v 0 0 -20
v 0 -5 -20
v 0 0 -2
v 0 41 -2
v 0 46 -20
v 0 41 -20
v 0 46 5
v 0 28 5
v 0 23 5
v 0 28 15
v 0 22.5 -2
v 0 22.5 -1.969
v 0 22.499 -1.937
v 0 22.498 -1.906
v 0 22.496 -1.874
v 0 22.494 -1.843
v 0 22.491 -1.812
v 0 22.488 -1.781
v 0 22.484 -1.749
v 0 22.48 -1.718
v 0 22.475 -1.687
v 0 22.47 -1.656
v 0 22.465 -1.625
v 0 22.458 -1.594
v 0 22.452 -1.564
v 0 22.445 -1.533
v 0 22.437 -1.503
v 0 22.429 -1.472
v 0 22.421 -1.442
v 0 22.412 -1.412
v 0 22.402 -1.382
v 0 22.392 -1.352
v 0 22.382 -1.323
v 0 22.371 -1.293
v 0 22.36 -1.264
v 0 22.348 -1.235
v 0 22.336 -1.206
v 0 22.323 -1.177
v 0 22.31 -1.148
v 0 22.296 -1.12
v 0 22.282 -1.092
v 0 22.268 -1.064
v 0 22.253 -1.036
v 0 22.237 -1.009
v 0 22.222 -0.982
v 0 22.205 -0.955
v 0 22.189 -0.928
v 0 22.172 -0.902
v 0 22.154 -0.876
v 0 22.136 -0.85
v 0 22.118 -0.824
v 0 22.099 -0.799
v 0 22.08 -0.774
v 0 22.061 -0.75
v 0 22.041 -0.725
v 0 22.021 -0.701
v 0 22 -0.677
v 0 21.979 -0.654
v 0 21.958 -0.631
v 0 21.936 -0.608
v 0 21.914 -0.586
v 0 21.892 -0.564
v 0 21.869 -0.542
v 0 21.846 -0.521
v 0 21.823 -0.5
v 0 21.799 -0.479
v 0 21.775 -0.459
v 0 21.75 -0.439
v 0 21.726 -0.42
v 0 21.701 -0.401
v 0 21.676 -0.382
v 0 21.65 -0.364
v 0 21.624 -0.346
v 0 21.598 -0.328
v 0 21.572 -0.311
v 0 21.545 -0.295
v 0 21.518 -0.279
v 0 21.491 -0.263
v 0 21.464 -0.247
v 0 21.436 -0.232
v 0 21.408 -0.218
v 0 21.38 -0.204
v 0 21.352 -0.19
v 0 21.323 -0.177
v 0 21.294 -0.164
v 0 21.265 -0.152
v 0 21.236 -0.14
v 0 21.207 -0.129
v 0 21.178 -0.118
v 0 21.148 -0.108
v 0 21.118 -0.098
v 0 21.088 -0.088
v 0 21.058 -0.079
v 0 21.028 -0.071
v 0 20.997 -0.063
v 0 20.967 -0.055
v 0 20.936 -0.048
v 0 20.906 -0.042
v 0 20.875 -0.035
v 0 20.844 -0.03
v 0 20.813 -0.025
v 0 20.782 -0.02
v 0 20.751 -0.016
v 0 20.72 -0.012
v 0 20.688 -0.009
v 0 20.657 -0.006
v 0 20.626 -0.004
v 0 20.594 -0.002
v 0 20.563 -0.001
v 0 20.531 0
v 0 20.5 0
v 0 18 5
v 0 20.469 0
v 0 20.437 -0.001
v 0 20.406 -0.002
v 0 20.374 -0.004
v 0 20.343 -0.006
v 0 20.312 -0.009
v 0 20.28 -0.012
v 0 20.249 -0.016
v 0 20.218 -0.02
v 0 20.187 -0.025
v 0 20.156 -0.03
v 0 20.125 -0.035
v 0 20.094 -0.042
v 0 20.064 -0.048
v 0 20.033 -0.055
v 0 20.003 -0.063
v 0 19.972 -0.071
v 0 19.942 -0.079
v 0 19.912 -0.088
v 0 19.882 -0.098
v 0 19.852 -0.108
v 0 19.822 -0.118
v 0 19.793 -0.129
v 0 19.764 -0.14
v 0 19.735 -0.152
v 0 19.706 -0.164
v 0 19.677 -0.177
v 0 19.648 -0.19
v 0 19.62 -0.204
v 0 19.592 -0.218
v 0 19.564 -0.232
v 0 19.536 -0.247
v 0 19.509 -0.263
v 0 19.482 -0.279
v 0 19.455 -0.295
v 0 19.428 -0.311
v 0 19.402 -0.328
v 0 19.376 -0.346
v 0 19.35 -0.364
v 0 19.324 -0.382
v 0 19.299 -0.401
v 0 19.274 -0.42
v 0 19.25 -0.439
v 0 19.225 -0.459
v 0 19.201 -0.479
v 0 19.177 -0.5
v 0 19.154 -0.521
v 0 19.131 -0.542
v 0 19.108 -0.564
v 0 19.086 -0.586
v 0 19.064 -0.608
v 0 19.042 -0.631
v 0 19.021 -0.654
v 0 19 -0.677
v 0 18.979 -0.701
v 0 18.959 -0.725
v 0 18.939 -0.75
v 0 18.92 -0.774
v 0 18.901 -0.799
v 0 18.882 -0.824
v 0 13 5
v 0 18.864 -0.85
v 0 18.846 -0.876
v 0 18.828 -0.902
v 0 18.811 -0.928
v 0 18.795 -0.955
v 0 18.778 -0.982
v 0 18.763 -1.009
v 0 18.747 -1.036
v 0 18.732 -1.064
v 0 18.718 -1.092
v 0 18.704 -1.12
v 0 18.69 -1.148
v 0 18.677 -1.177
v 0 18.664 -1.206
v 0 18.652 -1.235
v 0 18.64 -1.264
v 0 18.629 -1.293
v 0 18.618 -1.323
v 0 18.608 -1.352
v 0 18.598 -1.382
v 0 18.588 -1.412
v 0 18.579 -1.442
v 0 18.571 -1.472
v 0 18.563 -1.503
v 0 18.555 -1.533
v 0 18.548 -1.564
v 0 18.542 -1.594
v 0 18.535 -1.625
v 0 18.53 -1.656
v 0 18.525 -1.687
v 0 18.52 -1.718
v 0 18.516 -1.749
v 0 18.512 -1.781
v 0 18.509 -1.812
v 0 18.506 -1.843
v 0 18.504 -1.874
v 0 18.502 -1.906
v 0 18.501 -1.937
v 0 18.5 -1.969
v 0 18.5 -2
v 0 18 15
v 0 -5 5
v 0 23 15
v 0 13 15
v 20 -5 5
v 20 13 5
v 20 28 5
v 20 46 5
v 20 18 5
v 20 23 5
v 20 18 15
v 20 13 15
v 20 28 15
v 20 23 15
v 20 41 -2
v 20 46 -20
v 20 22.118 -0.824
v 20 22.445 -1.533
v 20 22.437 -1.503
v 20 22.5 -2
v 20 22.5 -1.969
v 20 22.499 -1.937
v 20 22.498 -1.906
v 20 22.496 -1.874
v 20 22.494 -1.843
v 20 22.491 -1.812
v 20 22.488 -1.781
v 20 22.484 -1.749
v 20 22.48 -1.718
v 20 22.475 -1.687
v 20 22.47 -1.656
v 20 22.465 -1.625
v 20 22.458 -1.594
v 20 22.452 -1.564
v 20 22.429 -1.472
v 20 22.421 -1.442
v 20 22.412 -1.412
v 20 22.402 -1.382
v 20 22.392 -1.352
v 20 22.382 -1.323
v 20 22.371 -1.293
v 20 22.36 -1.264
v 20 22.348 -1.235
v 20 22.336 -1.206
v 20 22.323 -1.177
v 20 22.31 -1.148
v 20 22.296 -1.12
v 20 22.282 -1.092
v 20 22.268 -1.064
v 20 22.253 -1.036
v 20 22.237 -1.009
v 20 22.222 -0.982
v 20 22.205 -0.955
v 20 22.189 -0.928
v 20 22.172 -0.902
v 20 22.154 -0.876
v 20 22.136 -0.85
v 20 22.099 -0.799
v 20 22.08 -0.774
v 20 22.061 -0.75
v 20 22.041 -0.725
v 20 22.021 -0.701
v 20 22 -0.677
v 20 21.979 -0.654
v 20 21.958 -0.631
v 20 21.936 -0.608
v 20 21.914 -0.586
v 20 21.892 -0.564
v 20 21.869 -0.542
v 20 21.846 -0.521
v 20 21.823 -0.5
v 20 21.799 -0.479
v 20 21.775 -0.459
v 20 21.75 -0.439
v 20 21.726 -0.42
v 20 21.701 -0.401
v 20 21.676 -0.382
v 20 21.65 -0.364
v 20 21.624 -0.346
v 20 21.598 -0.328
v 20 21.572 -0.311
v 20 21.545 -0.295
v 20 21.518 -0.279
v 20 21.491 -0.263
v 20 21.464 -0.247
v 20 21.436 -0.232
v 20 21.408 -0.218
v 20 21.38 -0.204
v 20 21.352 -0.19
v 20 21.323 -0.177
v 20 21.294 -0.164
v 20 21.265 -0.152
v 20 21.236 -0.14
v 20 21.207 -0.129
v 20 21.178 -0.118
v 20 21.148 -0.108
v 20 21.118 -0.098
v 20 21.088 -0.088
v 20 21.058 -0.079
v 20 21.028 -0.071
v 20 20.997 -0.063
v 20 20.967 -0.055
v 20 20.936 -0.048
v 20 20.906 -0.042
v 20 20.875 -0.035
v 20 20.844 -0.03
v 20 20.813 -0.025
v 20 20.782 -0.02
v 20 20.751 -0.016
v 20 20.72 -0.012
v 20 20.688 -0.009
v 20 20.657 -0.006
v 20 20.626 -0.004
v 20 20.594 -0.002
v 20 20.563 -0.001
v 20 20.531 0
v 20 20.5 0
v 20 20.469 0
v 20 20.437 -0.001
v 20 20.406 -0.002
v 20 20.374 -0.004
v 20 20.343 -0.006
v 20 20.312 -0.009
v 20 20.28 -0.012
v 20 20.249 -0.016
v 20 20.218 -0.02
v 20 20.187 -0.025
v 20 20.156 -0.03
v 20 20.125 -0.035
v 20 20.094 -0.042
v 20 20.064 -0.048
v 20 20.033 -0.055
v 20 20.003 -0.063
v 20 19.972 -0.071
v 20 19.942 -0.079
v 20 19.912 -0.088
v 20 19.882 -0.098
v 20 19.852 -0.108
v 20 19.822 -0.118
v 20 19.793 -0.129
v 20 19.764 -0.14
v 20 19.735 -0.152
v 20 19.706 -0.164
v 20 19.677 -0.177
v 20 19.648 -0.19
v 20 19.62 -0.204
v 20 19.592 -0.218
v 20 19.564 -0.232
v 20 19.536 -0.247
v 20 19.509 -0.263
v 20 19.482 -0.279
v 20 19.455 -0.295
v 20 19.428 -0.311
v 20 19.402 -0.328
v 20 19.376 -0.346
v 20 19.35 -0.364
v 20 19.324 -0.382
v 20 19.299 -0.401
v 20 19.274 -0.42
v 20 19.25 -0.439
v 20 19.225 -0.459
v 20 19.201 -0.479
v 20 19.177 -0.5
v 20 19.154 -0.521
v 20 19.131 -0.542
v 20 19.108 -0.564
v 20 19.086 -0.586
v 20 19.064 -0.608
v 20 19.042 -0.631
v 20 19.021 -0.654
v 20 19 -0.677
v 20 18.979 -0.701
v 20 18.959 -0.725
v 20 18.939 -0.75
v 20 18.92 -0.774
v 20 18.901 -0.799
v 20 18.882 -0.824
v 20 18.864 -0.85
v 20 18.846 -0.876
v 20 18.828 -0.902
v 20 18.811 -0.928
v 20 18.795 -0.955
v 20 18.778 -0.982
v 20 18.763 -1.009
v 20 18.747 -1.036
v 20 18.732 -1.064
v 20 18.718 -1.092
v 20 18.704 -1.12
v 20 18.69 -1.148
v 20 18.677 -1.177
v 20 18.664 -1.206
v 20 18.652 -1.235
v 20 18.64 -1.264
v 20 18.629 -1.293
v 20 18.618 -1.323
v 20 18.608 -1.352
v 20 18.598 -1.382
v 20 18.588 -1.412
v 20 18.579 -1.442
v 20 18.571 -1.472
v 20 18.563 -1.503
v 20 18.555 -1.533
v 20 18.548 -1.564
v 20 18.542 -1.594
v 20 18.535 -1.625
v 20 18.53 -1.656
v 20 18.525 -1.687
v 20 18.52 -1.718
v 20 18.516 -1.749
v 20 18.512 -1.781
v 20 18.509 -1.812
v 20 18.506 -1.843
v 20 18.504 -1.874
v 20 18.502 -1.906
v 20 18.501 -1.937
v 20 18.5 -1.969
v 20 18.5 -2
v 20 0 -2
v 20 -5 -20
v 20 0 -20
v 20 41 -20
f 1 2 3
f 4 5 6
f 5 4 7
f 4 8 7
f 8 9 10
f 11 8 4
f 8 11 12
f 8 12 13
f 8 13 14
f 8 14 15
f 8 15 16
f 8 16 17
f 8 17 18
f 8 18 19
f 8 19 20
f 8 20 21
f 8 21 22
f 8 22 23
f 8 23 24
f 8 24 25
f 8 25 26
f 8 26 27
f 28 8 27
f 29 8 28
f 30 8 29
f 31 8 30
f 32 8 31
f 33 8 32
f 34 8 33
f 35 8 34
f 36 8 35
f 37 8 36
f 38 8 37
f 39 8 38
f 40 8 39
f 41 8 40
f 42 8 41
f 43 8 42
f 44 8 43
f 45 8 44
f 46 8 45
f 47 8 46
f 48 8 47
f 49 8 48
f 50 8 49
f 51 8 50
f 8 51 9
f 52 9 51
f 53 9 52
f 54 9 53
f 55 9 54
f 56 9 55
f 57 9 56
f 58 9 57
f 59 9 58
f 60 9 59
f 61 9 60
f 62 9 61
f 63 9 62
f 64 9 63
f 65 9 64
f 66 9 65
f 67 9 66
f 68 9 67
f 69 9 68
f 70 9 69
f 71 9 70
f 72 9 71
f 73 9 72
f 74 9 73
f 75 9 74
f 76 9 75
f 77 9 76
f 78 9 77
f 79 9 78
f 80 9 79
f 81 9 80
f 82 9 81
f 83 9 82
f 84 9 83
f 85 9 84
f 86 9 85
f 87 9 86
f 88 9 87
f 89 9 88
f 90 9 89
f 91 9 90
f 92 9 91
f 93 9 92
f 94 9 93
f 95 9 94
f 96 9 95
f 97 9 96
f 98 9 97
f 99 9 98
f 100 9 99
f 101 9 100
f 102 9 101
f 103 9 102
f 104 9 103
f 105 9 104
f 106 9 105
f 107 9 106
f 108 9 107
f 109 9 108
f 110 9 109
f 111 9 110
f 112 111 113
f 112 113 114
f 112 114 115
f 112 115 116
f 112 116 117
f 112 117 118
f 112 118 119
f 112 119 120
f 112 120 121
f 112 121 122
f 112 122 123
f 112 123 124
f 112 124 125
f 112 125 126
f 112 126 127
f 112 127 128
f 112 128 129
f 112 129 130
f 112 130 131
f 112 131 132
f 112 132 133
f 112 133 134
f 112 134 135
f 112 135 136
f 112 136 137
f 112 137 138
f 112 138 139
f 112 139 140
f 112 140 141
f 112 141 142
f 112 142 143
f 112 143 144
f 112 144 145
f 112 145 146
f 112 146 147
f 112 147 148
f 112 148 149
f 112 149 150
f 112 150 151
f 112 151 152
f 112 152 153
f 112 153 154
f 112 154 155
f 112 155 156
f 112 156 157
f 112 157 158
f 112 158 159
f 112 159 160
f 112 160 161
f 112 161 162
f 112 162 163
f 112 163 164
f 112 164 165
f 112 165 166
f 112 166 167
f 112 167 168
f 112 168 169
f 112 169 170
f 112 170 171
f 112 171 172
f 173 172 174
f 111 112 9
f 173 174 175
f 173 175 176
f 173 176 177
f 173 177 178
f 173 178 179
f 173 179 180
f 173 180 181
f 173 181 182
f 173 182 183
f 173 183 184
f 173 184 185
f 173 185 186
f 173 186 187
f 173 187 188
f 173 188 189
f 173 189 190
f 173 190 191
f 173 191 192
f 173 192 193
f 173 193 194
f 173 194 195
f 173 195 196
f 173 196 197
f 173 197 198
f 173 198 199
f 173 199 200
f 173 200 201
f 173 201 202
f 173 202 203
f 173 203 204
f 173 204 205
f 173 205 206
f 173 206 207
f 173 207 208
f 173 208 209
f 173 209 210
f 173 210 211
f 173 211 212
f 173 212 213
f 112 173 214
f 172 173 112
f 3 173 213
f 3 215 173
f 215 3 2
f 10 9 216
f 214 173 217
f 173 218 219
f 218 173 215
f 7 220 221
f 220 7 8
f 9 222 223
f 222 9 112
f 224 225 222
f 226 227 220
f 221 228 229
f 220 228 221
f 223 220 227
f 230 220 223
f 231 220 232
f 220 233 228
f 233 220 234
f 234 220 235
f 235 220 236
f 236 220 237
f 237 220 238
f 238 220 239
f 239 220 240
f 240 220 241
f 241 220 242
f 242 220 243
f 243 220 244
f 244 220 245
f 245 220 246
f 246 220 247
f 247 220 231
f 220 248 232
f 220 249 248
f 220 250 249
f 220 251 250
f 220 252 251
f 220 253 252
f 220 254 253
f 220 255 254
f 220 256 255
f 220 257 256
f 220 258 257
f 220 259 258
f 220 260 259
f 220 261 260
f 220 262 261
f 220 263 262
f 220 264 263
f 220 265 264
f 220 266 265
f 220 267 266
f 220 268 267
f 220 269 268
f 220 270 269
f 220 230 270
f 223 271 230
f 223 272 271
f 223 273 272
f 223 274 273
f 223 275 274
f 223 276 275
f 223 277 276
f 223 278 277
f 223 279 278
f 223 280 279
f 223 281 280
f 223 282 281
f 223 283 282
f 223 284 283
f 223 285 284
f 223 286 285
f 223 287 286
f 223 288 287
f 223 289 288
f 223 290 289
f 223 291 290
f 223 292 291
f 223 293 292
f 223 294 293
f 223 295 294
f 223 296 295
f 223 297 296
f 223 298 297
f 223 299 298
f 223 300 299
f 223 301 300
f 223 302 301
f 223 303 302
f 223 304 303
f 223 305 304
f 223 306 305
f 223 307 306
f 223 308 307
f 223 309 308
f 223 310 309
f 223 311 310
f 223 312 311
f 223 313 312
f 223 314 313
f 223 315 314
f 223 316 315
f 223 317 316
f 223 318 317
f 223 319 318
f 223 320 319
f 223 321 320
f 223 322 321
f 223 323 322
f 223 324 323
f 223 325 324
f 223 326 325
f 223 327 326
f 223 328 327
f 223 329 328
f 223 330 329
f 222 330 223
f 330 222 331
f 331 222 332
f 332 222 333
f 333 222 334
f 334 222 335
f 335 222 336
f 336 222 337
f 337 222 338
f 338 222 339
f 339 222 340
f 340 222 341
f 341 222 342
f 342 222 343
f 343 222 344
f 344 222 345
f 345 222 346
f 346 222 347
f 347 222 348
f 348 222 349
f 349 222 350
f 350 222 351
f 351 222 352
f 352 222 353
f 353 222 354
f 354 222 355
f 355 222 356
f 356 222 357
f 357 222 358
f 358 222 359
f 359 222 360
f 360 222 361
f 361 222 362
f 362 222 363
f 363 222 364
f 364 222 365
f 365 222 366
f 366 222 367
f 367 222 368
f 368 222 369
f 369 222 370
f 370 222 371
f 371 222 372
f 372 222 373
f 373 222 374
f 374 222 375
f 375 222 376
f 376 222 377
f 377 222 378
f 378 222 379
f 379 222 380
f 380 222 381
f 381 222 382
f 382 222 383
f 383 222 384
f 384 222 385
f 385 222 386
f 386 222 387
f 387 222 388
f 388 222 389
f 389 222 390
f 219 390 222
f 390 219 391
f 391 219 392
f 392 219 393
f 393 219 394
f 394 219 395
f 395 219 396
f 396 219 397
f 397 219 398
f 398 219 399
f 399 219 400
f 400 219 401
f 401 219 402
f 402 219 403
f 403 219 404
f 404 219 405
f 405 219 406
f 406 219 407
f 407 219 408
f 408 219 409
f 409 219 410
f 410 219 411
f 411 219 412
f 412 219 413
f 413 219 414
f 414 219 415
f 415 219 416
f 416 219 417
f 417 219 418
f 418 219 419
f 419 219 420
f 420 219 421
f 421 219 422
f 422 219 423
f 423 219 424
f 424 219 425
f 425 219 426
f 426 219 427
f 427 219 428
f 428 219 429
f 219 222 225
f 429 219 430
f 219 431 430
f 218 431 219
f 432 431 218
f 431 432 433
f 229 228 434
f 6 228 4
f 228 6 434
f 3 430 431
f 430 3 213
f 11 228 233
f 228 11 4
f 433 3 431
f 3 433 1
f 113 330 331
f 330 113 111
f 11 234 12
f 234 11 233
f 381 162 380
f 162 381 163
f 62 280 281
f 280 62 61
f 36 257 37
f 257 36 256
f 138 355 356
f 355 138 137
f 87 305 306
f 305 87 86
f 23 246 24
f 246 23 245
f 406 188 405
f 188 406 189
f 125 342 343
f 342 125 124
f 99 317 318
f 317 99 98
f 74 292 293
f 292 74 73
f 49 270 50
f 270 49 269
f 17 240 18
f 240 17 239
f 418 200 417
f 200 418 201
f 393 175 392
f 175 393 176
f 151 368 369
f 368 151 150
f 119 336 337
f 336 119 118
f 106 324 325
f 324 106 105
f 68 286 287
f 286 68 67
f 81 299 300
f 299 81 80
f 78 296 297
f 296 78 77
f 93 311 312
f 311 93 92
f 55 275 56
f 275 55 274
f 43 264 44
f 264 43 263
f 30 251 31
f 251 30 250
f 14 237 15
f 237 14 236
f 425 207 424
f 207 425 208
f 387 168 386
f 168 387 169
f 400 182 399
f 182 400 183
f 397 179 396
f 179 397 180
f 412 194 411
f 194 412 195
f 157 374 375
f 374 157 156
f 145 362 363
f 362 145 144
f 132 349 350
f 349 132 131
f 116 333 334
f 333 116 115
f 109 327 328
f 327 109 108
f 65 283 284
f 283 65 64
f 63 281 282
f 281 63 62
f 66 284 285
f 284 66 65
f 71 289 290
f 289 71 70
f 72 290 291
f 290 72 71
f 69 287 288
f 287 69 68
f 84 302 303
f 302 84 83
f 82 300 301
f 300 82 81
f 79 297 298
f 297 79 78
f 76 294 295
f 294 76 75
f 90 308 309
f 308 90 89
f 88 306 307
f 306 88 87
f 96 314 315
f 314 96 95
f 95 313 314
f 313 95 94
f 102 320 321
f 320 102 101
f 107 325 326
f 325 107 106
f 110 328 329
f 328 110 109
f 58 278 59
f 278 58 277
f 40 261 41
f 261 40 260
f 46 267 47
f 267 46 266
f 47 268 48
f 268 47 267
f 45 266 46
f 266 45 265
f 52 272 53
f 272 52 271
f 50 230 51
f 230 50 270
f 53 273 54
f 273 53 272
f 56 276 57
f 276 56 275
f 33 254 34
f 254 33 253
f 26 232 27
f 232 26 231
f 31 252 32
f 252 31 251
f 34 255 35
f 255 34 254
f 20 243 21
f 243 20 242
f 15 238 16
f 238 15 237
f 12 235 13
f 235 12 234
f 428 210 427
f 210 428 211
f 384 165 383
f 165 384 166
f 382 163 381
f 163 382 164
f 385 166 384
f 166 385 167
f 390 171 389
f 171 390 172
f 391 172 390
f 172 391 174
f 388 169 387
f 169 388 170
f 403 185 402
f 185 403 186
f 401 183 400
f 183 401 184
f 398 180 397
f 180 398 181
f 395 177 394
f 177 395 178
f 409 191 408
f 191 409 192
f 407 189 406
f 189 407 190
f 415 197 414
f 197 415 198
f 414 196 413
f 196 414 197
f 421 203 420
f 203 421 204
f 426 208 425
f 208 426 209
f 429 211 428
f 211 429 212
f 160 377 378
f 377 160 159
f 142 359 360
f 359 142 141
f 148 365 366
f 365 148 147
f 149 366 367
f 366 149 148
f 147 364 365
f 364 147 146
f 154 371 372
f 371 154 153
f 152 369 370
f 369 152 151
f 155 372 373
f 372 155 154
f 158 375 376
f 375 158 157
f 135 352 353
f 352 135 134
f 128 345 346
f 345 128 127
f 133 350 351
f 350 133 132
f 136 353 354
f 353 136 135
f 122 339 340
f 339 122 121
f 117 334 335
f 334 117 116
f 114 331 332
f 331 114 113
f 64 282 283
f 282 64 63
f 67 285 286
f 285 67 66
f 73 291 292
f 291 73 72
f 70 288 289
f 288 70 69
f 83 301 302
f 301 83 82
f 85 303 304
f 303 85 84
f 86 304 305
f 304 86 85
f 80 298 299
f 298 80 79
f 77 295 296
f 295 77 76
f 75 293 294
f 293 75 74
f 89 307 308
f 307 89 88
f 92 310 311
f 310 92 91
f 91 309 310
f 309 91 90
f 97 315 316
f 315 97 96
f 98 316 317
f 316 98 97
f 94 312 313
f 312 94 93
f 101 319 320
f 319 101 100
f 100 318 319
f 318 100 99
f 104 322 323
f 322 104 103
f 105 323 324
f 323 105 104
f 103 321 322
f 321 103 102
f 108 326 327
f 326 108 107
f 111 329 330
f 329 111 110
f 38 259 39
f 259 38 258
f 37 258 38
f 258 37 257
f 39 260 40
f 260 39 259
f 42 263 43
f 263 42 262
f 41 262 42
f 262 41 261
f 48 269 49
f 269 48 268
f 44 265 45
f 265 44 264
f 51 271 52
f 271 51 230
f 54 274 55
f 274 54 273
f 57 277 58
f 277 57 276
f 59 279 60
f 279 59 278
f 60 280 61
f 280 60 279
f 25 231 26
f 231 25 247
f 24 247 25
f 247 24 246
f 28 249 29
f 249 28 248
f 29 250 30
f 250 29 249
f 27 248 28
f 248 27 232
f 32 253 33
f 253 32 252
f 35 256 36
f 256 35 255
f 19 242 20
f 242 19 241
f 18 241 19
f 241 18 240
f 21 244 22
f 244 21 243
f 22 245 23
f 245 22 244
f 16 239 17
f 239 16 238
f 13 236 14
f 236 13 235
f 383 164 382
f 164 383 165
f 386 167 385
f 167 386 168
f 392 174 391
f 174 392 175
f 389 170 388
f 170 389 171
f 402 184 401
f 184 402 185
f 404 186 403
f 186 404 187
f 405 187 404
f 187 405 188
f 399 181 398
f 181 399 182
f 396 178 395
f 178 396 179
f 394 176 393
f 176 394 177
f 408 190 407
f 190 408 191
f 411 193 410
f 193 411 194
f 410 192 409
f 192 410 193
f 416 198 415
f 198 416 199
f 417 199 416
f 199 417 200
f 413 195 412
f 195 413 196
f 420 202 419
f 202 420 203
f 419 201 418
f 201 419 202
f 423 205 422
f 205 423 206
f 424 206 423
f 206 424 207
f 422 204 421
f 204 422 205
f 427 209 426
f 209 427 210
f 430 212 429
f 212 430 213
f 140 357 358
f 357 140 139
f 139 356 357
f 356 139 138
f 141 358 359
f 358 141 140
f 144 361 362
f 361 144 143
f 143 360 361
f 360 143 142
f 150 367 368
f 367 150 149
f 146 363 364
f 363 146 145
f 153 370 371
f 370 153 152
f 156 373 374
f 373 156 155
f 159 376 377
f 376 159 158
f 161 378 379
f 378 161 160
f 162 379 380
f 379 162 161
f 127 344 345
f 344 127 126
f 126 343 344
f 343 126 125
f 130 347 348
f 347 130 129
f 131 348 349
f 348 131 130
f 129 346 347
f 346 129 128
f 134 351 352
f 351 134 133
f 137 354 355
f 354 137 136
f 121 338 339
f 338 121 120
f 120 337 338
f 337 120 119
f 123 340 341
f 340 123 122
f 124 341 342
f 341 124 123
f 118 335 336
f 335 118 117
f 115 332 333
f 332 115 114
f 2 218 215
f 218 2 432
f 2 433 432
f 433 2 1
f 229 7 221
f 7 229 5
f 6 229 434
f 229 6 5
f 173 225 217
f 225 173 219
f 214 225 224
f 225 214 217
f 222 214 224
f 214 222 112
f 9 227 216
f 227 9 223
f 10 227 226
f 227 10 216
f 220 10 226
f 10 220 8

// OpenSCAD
// file: hex_grid/hex_grid.scad
*hex_grid();

module hex_grid(size = [ 50, 30 ], wall = 1.5, hole_radius = 1.5) {
  hole_outer_radius = hole_radius;
  hole_inner_radius = hole_outer_radius * sqrt(3) / 2;

  hex_inner_radius = hole_inner_radius + wall / 2;
  hex_outer_radius = 2 * hex_inner_radius / sqrt(3);


  distance_between_hexes_centers = 2 * hex_inner_radius;
  x_distance = distance_between_hexes_centers * cos(30);
  y_distance = distance_between_hexes_centers * sin(30);

  x_hexes_count = ceil(size.x / (2 * x_distance));
  y_hexex_count = ceil(size.y / (4 * y_distance));

  module hex() {
    difference() {
      circle(hex_outer_radius, $fn = 6);
      circle(hole_outer_radius, $fn = 6);
    }
  }

  module column() {
    for (i = [0:y_hexex_count]) {
      translate([ 0, distance_between_hexes_centers * i ]) hex();
    }
  }

  module grid_quarter() {
    for (x = [0:x_hexes_count]) {
      translate([ x_distance * x, x % 2 == 0 ? 0 : -y_distance ]) column();
    }
  }

  module grid() {
    grid_quarter();
    mirror([ 0, 1, 0 ]) { grid_quarter(); }

    mirror([ 1, 0, 0 ]) {
      grid_quarter();
      mirror([ 0, 1, 0 ]) { grid_quarter(); }
    }
  }

  intersection() {
    grid();
    square(size, center = true);
  }
}
// main file
use <hex_grid/hex_grid.scad>;

$fn=400;
plate_thickness=5;
gate_base_plate_height=plate_thickness+2;
gate_base_plate_size_x=41;
gate_base_plate_size_y=20;
gate_base_plate=[gate_base_plate_size_y,gate_base_plate_size_x,gate_base_plate_height];

gate_side_plate_height=plate_thickness;
gate_side_plate_size_x=20+plate_thickness;
gate_side_plate_size_y=20;
gate_side_plate=[gate_side_plate_size_y,gate_side_plate_size_x,gate_side_plate_height];

gate_holder_plate_height=plate_thickness;
gate_holder_plate_size_x=gate_base_plate_size_y;
gate_holder_plate_size_y=10;
gate_holder_plate=[gate_holder_plate_size_y,gate_holder_plate_size_x,gate_holder_plate_height];
gate_holder_space=5;


union() {
    
    difference() {
        translate([0, 0, -2])
        cube(gate_base_plate);
        
        color("blue")
        rotate([0,90,0])
        translate([2,gate_base_plate_size_x/2,-1])
        cylinder(22,2,2);
    }
    
    rotate([90,0,0])
    translate([0, -gate_side_plate_size_y, 0])
    color("red")
    cube(gate_side_plate);

    rotate([90,0,0])
    translate([0, -gate_side_plate_size_y, - (gate_base_plate_size_x + plate_thickness)])
    color("green")
    cube(gate_side_plate);
    
    color("black")
    rotate([90,90,0])
    translate([- (gate_holder_plate_size_y + plate_thickness), 0, -(gate_base_plate_size_x/2 - plate_thickness/2)])
    cube(gate_holder_plate);
    
    color("grey")
    rotate([90,90,0])
    translate([-gate_holder_plate_size_x+5, 0, -(gate_base_plate_size_x/2 + plate_thickness + plate_thickness/2)])
    cube(gate_holder_plate);
}



//rotate([90,0,0])
//translate([9, 9, -0])
//hex_grid(
//    diameter=16, // External point-to-point distance of a single hexagon
//    thickness=2, // Thickness of each hexagon's walls
//    rows=5,     // The number of rows of hexagons in the grid
//    columns=10   // The number of columns of hexagons in the grid
//);
